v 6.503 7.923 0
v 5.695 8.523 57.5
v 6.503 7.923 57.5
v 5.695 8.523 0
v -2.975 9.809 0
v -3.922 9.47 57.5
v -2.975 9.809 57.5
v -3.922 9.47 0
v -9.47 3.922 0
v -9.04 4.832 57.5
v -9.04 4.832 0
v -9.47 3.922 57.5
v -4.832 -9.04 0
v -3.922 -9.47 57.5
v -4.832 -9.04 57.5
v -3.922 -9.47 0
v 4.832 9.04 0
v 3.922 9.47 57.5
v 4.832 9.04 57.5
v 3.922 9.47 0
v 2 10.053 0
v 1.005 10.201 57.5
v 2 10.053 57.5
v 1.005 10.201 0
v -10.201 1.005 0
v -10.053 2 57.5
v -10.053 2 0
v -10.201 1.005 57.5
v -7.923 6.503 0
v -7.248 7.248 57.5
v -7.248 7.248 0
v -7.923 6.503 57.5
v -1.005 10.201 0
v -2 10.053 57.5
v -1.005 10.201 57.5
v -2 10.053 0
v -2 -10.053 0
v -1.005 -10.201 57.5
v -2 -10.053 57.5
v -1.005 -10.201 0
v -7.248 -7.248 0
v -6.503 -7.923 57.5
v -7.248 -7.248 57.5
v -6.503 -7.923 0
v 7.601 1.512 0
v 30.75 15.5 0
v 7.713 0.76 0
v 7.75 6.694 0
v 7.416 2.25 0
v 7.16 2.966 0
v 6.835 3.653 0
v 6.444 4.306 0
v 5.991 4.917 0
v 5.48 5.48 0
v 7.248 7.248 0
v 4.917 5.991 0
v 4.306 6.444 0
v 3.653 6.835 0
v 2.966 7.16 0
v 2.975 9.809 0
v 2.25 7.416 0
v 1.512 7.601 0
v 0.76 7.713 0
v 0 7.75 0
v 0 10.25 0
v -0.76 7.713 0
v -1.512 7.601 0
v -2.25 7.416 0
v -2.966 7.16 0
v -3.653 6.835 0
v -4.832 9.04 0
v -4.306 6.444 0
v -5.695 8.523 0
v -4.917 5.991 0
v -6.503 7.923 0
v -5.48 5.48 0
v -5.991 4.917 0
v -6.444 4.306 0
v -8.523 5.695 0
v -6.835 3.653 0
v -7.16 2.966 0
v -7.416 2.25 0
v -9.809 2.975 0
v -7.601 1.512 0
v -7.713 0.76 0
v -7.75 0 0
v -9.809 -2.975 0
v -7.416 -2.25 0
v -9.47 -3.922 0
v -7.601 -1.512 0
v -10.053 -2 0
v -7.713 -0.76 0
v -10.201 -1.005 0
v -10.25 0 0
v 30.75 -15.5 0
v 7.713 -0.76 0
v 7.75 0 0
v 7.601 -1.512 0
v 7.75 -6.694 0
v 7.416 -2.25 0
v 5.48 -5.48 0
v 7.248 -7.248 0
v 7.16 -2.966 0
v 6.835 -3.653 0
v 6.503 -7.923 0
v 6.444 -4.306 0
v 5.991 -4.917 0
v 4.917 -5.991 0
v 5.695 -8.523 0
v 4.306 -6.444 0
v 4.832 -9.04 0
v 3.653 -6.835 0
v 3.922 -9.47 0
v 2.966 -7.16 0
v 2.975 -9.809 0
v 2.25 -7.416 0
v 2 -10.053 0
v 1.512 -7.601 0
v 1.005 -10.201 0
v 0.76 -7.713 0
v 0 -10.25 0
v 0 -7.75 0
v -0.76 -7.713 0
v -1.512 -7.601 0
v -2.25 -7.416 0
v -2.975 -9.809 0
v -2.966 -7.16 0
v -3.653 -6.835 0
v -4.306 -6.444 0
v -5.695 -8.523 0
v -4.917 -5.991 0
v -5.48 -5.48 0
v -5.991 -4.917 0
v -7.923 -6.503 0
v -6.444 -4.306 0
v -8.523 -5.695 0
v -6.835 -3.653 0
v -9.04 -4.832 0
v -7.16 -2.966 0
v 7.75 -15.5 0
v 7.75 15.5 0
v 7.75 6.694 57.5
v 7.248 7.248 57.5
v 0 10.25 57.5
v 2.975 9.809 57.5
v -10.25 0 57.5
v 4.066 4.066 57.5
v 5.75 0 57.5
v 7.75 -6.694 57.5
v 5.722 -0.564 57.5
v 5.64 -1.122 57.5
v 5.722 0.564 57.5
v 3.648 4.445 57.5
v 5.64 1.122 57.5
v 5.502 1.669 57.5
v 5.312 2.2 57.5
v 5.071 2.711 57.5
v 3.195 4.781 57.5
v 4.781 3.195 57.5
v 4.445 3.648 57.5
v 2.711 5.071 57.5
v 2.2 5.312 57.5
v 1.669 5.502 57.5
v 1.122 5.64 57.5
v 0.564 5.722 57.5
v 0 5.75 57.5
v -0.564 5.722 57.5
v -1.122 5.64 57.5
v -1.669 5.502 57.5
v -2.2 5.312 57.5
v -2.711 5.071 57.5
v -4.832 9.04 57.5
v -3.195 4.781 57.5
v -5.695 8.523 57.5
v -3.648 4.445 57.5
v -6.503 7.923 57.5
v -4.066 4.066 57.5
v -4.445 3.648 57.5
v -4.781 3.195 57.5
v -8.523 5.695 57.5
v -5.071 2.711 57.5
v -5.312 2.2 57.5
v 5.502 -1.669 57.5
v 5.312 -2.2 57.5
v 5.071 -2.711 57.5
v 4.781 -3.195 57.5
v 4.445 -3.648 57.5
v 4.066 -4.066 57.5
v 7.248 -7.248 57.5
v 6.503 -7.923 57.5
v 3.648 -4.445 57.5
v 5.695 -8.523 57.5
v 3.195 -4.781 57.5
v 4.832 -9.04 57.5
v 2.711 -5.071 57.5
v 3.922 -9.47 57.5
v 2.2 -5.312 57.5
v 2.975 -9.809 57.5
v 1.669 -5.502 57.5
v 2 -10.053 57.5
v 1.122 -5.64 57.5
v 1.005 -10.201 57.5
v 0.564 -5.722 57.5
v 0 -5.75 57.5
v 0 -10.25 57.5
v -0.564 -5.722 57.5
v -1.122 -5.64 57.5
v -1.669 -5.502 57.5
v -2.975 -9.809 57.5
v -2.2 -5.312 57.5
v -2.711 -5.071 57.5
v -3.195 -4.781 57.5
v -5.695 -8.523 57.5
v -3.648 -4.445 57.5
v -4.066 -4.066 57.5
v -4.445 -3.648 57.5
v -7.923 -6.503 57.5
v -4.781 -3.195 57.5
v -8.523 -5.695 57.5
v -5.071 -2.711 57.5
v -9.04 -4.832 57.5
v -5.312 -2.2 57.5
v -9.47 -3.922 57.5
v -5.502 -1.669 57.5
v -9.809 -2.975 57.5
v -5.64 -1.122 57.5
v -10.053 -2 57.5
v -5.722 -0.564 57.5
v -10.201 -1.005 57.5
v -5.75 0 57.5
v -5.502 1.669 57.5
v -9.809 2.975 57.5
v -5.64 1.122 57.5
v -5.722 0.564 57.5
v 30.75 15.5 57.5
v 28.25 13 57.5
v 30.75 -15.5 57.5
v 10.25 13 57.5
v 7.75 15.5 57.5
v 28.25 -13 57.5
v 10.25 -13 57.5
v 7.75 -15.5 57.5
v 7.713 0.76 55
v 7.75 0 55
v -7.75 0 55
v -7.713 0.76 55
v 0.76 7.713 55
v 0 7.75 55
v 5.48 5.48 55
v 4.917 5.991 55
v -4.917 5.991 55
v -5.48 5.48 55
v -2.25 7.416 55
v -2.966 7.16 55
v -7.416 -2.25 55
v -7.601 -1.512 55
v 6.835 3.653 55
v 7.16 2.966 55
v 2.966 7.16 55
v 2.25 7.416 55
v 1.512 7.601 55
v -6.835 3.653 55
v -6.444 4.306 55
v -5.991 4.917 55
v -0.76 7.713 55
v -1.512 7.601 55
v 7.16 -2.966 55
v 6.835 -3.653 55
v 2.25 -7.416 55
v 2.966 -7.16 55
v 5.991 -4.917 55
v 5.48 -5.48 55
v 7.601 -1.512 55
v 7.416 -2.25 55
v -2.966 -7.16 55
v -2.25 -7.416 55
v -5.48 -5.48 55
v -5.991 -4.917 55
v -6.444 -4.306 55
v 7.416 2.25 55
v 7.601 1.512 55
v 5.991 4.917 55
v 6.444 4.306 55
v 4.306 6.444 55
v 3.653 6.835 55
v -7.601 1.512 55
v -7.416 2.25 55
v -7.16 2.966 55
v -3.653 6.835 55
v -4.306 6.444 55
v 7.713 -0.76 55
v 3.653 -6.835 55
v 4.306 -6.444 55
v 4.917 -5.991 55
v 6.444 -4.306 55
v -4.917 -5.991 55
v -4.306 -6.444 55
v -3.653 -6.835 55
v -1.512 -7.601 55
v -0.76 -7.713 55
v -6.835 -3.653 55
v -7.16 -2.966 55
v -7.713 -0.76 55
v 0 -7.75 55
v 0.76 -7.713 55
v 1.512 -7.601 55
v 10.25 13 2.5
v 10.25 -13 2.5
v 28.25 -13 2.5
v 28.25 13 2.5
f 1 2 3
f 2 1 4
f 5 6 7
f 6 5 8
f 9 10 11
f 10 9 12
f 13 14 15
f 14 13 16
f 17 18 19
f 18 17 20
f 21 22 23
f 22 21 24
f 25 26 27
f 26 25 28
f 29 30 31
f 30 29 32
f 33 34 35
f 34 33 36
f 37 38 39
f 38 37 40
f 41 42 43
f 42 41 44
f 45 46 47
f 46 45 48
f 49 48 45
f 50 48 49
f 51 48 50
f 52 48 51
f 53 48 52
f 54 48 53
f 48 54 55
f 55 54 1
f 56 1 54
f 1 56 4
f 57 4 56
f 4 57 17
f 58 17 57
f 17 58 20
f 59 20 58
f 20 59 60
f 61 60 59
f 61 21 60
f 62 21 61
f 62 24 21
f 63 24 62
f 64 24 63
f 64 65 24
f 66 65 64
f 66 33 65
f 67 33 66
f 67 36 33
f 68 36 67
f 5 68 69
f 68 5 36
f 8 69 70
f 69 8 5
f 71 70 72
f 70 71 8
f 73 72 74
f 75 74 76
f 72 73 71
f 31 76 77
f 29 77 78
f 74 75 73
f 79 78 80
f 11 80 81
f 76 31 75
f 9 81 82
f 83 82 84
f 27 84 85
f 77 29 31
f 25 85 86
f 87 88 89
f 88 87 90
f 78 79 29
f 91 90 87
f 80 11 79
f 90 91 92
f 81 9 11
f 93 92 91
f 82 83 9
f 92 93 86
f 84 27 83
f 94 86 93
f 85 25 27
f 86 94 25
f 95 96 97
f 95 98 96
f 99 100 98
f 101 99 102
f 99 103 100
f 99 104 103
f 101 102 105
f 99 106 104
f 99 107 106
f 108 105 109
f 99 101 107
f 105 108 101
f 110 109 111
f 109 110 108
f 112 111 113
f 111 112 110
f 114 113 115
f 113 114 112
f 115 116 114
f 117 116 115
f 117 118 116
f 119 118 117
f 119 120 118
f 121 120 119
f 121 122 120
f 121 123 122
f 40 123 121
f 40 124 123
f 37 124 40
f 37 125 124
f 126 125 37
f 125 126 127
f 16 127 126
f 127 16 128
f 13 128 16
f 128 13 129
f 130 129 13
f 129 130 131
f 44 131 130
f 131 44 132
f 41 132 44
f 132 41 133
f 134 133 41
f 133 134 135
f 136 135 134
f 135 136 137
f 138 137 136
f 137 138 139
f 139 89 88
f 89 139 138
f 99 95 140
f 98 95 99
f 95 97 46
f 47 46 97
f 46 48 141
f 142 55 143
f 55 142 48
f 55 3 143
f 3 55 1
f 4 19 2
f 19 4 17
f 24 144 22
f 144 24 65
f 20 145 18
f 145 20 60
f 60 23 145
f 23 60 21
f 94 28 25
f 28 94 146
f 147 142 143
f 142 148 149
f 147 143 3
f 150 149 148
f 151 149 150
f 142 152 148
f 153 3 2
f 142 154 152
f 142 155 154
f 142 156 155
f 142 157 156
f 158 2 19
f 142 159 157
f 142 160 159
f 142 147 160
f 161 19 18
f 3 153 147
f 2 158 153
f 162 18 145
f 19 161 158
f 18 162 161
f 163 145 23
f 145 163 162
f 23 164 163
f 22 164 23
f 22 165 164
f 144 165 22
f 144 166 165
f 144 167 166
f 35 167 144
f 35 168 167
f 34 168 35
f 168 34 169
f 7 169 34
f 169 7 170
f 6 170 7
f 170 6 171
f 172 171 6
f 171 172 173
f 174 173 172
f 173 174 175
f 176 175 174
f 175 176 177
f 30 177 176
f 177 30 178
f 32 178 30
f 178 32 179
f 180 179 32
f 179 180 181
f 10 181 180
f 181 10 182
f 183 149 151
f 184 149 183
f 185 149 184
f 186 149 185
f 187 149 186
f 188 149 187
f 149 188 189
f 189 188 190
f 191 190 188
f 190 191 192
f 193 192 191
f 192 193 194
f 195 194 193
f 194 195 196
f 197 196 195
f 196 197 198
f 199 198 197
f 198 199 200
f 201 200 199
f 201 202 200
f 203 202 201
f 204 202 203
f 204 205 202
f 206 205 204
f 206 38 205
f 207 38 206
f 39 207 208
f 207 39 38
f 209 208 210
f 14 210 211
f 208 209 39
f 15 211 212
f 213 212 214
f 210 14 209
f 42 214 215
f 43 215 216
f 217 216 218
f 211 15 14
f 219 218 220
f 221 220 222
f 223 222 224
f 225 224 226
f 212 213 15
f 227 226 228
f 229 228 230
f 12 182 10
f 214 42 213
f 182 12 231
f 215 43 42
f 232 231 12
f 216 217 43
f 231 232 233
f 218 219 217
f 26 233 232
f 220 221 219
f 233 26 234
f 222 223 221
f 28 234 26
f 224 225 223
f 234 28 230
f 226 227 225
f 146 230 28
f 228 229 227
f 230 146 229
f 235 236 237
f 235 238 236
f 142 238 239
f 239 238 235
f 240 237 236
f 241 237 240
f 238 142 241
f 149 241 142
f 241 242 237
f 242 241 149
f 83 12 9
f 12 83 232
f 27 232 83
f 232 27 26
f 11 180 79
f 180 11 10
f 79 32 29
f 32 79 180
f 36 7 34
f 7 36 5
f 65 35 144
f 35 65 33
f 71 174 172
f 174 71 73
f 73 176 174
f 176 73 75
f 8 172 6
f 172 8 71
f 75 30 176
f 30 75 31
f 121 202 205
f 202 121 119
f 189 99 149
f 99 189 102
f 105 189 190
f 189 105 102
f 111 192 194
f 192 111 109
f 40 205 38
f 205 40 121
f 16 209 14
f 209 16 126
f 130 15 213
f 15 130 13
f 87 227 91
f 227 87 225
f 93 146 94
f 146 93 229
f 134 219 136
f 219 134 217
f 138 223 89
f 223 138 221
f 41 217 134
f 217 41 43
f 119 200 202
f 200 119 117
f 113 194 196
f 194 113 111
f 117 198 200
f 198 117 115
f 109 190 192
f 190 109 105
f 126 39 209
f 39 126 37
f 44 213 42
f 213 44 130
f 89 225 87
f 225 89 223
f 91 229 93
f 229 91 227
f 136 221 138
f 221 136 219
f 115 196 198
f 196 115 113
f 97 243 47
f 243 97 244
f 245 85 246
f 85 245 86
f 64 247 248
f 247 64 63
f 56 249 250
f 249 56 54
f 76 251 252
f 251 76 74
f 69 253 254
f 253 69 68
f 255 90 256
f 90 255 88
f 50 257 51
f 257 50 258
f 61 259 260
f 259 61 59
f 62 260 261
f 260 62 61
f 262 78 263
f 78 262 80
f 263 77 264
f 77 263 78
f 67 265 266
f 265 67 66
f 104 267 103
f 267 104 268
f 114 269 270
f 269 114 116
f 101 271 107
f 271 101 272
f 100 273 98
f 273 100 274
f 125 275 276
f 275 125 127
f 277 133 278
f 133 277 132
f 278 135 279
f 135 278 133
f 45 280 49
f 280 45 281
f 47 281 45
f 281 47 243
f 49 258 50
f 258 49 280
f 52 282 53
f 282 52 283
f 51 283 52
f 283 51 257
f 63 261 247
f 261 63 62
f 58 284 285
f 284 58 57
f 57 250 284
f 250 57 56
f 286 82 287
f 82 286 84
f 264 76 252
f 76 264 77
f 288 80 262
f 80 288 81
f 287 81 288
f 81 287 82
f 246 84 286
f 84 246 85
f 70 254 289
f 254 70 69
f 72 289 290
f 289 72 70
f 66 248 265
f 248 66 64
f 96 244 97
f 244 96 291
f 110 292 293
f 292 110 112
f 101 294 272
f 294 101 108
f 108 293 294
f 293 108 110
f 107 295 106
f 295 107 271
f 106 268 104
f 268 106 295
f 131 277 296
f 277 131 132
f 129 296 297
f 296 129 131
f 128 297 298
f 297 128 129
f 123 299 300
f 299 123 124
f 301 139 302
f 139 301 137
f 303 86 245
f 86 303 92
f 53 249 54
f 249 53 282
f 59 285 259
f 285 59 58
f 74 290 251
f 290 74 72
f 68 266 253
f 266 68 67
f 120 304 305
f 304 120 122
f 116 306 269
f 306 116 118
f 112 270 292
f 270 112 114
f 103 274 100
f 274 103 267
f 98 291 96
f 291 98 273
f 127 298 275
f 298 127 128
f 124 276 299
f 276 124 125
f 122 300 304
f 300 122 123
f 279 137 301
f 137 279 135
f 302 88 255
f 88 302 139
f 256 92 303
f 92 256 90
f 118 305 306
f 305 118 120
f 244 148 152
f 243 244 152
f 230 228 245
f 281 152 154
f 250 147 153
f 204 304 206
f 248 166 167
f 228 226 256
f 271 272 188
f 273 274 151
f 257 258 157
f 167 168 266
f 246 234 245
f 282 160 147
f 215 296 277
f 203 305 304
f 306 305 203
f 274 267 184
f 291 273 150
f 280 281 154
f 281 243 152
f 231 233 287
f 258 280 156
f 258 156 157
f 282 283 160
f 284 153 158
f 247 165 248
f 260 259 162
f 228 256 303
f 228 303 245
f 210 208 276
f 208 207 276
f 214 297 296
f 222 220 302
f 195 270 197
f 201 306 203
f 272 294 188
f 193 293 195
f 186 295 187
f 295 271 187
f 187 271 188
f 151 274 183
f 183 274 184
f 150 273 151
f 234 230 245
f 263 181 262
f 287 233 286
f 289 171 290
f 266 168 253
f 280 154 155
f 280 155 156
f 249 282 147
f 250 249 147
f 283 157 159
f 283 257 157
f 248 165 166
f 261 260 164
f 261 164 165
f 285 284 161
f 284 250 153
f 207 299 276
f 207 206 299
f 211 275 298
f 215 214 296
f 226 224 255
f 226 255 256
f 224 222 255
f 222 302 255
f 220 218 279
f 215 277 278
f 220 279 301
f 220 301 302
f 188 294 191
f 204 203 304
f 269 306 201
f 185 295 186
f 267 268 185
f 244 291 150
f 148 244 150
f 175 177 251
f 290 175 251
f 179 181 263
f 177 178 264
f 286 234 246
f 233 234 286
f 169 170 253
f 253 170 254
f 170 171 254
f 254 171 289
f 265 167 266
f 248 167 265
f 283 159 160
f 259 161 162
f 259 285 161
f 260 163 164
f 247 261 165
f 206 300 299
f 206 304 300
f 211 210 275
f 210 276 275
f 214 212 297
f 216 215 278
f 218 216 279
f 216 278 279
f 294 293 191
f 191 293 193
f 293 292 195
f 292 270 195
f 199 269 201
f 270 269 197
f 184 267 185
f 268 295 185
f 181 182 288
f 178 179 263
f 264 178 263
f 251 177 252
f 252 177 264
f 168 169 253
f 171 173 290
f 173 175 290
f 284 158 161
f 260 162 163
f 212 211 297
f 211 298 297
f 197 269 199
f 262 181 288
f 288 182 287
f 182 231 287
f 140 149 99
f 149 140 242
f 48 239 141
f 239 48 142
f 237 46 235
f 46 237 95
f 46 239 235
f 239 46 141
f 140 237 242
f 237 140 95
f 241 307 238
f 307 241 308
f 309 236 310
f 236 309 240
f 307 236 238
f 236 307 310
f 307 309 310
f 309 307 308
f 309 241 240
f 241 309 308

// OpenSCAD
difference() {
	union() {
		difference() {
			difference() {
				cylinder($fn = 64, d = 20.5000000000, h = 57.5000000000);
				cylinder($fn = 64, d = 15.5000000000, h = 55);
			}
			translate(v = [0, 0, 55]) {
				cylinder($fn = 64, d1 = 15.5000000000, d2 = 11.5000000000, h = 2.5000000000);
			}
		}
		translate(v = [0, -15.5000000000, 0]) {
			translate(v = [7.7500000000, 0, 0]) {
				cube(size = [23.0000000000, 31.0000000000, 57.5000000000]);
			}
		}
	}
	translate(v = [0, 0, 2.5000000000]) {
		translate(v = [0, -13, 0]) {
			translate(v = [10.2500000000, 0, 0]) {
				cube(size = [18, 26, 55]);
			}
		}
	}
}
/***********************************************
*********      SolidPython code:      **********
************************************************
 
import solid as s
import solid.utils as u

wall = 2.5
wall2 = wall + wall
pipe_dia = 15.5
bat_width = 18
bat_length = 26
bat_height = 55
seg=64


m = s.cylinder(d=pipe_dia + wall2, h=bat_height + wall, segments=seg)
m -= s.cylinder(d=pipe_dia, h=bat_height, segments=seg)
m -= u.up(bat_height)(
    s.cylinder(d1=pipe_dia, d2=pipe_dia - 4, h=wall, segments=seg)
)
m += u.back((bat_length + wall2) / 2)(u.right(pipe_dia / 2.0)(
    s.cube(size=(bat_width + wall2, bat_length + wall2, bat_height + wall))
))
m -= u.up(wall)(u.back(bat_length / 2)(u.right(wall + (pipe_dia / 2.0))(
    s.cube(size=(bat_width, bat_length, bat_height))
)))
final = m

s.scad_render_to_file(final, __file__.replace('.py', '.scad'))
 
 
************************************************/
